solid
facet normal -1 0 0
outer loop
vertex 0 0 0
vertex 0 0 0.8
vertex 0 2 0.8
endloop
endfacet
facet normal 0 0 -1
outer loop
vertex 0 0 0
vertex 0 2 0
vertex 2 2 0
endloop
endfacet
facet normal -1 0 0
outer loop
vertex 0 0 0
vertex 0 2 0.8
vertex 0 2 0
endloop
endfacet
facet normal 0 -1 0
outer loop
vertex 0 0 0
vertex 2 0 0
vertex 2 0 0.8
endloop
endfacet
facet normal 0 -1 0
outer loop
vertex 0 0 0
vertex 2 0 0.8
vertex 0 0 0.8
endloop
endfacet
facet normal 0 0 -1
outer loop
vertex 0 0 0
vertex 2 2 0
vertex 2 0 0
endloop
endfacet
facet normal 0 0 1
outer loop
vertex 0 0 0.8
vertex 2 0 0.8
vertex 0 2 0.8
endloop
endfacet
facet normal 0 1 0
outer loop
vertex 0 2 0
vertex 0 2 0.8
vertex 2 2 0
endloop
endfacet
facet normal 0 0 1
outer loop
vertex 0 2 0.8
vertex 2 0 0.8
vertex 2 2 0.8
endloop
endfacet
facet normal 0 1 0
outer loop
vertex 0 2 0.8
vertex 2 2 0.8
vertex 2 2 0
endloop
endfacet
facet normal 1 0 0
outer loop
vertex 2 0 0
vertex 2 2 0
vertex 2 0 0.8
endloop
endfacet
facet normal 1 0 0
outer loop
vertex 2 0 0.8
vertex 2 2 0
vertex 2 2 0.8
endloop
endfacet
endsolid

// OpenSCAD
/* Warning, this is a very basic generator with a lot of approximation 
input data : [TDFN, 4QX, 2x2x0.8mm, 6, , A, C04-00078A]
generated by com.zoubworld.electronics.cad.model3d.Basic
Date : Sun Feb 15 10:50:48 CET 2026
*/

//body
color("black")
translate([0,0,0])
cube([2.0,2.0,0.8], center=false);
